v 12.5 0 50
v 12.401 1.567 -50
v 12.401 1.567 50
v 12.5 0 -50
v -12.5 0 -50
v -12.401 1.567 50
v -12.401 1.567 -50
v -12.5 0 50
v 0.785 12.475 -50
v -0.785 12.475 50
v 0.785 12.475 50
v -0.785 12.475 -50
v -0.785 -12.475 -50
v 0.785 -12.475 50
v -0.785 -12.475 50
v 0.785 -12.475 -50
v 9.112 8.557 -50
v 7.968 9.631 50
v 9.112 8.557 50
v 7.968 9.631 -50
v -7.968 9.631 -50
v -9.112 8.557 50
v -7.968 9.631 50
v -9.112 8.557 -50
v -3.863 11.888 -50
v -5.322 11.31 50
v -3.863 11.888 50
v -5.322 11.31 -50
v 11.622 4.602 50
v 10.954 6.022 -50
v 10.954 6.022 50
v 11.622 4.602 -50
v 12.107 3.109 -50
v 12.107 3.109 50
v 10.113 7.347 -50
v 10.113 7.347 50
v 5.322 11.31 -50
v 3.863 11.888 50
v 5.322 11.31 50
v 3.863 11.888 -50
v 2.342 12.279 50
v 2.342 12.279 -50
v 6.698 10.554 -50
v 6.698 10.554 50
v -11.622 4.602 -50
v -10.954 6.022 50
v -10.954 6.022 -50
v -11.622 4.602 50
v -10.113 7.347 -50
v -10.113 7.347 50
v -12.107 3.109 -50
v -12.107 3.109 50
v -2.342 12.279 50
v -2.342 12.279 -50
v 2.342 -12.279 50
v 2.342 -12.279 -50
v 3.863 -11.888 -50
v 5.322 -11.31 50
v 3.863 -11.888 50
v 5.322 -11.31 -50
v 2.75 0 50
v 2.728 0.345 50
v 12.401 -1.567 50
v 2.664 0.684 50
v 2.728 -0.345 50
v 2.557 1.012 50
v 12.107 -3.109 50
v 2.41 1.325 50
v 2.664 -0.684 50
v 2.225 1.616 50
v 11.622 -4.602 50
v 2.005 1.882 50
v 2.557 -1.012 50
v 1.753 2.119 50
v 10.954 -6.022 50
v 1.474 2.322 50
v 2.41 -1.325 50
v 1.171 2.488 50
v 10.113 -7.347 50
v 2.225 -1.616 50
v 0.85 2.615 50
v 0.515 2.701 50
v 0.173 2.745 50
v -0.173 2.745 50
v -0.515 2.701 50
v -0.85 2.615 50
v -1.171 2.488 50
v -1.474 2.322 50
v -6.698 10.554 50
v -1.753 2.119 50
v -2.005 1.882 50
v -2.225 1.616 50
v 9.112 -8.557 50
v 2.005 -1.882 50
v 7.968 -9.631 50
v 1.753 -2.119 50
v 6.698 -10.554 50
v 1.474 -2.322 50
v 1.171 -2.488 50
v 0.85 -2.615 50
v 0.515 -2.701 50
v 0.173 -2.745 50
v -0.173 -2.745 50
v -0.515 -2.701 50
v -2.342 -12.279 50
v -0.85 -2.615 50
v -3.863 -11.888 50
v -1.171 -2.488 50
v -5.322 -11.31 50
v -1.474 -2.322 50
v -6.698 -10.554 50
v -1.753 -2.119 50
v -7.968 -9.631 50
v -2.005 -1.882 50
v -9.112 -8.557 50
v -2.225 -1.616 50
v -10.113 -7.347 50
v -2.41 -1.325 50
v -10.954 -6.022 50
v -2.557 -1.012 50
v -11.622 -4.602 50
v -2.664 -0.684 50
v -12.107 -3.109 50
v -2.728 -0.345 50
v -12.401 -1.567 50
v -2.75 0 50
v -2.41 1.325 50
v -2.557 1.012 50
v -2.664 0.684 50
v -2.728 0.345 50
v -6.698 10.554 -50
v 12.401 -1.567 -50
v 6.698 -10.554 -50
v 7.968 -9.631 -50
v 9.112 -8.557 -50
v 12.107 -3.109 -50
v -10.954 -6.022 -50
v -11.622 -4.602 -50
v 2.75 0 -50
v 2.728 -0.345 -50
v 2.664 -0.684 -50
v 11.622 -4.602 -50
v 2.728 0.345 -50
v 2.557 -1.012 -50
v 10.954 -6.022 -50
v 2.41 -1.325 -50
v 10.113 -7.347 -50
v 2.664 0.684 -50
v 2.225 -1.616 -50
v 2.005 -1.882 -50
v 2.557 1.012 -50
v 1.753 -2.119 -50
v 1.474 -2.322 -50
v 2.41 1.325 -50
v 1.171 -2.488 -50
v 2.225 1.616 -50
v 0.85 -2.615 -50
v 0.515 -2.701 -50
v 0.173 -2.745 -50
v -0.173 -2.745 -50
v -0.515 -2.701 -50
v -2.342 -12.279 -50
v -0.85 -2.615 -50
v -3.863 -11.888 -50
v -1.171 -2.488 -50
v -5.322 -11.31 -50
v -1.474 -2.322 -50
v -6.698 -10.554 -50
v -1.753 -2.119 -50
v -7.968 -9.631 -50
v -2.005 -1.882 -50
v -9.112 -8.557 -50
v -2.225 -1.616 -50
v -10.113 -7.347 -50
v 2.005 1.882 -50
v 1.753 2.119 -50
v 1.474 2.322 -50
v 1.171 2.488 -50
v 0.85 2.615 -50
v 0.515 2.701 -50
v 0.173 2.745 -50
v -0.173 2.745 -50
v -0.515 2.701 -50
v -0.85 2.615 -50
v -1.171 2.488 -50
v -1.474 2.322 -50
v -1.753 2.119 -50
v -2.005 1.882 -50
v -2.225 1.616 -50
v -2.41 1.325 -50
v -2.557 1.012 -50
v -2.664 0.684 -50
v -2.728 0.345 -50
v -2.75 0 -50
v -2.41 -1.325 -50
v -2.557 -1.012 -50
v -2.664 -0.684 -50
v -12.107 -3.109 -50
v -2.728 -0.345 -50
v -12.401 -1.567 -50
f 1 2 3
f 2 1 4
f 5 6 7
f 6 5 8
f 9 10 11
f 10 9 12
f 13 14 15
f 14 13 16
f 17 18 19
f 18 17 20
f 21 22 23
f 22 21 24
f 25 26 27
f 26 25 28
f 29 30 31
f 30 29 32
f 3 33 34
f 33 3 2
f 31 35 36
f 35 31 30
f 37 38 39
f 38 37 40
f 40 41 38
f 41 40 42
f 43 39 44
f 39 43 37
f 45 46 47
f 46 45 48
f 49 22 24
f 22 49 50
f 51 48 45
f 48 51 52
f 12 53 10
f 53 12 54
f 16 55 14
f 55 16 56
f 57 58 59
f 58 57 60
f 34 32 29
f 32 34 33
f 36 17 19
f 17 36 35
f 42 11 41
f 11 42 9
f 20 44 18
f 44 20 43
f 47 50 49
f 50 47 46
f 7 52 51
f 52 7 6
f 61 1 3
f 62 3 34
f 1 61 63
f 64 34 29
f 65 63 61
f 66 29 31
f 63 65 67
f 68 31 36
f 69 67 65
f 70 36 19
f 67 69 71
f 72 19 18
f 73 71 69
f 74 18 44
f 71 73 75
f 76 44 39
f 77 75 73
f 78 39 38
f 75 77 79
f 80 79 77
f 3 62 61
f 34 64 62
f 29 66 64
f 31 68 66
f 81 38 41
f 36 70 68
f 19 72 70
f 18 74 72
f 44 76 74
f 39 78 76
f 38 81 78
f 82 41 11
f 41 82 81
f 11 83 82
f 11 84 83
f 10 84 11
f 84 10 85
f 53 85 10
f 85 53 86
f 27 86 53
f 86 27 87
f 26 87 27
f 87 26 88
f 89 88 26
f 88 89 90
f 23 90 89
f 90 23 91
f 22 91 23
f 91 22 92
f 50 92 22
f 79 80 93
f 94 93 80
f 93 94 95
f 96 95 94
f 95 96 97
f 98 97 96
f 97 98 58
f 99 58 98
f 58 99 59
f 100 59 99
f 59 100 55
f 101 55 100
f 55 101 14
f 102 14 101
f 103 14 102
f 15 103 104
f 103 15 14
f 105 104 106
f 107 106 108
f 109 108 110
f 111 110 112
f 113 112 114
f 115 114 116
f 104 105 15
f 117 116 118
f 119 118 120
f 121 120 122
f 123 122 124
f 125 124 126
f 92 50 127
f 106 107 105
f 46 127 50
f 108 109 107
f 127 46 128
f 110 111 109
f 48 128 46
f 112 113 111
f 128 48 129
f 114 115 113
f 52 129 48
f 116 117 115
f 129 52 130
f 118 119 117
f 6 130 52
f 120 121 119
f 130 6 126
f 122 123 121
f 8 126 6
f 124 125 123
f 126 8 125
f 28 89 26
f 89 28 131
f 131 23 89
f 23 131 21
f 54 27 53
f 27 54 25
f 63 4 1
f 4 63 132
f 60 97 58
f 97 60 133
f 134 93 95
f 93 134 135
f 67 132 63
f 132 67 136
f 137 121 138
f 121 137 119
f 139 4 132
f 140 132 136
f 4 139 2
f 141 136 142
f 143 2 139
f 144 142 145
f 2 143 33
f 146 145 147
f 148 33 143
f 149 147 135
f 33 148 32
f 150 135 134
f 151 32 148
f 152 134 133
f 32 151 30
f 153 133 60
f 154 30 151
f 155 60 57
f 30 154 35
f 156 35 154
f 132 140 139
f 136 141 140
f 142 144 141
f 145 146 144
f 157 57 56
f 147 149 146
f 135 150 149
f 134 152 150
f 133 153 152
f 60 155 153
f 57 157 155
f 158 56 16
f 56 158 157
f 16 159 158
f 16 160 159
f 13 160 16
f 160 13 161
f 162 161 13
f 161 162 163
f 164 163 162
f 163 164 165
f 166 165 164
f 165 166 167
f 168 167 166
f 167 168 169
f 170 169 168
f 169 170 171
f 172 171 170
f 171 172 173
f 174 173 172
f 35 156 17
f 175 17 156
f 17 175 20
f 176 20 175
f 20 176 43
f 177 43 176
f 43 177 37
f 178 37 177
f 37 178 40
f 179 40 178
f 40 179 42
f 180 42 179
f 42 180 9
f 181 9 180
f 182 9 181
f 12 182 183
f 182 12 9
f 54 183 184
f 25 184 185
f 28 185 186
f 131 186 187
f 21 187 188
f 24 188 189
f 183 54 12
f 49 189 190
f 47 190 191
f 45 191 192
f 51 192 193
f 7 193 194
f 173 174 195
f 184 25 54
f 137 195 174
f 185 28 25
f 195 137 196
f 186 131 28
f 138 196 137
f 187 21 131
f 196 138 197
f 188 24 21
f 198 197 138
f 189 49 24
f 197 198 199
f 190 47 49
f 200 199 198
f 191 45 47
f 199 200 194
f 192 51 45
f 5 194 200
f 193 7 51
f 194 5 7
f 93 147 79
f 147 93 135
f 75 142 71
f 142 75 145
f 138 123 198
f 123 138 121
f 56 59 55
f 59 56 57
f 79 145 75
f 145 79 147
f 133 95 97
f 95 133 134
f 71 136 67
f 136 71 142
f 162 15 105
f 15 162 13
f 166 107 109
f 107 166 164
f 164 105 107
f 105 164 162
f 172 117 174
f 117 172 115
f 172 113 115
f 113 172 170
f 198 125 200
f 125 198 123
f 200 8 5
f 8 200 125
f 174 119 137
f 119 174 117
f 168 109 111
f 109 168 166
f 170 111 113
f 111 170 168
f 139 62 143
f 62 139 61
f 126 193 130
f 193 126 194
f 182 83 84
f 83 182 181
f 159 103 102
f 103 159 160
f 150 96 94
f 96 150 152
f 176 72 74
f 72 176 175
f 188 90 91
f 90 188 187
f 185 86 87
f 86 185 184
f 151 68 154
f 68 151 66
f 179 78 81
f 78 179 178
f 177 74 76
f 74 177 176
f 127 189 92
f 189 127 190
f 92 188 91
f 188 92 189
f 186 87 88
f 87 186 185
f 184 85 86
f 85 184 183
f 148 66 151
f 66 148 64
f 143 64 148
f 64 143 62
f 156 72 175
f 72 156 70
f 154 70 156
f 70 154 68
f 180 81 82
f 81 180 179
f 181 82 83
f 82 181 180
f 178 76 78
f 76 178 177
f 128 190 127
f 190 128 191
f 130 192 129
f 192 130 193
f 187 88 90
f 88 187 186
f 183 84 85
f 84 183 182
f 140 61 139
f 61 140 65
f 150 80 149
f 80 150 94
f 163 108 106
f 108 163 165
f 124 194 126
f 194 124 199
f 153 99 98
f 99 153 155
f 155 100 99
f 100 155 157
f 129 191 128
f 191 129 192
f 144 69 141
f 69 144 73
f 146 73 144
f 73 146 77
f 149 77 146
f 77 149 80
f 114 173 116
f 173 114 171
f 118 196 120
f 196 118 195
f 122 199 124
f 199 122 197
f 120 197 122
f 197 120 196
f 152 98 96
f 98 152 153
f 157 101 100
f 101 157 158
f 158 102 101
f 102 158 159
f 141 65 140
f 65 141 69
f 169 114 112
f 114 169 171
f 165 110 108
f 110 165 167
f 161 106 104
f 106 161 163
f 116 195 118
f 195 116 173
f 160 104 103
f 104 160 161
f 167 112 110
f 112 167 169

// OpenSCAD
$fn = 50;


difference() {
	union() {
		translate(v = [0, 0, -50.0000000000]) {
			cylinder(h = 100, r = 12.5000000000);
		}
	}
	union() {
		translate(v = [0, 0, -100.0000000000]) {
			cylinder(h = 200, r = 2.7500000000);
		}
	}
}
